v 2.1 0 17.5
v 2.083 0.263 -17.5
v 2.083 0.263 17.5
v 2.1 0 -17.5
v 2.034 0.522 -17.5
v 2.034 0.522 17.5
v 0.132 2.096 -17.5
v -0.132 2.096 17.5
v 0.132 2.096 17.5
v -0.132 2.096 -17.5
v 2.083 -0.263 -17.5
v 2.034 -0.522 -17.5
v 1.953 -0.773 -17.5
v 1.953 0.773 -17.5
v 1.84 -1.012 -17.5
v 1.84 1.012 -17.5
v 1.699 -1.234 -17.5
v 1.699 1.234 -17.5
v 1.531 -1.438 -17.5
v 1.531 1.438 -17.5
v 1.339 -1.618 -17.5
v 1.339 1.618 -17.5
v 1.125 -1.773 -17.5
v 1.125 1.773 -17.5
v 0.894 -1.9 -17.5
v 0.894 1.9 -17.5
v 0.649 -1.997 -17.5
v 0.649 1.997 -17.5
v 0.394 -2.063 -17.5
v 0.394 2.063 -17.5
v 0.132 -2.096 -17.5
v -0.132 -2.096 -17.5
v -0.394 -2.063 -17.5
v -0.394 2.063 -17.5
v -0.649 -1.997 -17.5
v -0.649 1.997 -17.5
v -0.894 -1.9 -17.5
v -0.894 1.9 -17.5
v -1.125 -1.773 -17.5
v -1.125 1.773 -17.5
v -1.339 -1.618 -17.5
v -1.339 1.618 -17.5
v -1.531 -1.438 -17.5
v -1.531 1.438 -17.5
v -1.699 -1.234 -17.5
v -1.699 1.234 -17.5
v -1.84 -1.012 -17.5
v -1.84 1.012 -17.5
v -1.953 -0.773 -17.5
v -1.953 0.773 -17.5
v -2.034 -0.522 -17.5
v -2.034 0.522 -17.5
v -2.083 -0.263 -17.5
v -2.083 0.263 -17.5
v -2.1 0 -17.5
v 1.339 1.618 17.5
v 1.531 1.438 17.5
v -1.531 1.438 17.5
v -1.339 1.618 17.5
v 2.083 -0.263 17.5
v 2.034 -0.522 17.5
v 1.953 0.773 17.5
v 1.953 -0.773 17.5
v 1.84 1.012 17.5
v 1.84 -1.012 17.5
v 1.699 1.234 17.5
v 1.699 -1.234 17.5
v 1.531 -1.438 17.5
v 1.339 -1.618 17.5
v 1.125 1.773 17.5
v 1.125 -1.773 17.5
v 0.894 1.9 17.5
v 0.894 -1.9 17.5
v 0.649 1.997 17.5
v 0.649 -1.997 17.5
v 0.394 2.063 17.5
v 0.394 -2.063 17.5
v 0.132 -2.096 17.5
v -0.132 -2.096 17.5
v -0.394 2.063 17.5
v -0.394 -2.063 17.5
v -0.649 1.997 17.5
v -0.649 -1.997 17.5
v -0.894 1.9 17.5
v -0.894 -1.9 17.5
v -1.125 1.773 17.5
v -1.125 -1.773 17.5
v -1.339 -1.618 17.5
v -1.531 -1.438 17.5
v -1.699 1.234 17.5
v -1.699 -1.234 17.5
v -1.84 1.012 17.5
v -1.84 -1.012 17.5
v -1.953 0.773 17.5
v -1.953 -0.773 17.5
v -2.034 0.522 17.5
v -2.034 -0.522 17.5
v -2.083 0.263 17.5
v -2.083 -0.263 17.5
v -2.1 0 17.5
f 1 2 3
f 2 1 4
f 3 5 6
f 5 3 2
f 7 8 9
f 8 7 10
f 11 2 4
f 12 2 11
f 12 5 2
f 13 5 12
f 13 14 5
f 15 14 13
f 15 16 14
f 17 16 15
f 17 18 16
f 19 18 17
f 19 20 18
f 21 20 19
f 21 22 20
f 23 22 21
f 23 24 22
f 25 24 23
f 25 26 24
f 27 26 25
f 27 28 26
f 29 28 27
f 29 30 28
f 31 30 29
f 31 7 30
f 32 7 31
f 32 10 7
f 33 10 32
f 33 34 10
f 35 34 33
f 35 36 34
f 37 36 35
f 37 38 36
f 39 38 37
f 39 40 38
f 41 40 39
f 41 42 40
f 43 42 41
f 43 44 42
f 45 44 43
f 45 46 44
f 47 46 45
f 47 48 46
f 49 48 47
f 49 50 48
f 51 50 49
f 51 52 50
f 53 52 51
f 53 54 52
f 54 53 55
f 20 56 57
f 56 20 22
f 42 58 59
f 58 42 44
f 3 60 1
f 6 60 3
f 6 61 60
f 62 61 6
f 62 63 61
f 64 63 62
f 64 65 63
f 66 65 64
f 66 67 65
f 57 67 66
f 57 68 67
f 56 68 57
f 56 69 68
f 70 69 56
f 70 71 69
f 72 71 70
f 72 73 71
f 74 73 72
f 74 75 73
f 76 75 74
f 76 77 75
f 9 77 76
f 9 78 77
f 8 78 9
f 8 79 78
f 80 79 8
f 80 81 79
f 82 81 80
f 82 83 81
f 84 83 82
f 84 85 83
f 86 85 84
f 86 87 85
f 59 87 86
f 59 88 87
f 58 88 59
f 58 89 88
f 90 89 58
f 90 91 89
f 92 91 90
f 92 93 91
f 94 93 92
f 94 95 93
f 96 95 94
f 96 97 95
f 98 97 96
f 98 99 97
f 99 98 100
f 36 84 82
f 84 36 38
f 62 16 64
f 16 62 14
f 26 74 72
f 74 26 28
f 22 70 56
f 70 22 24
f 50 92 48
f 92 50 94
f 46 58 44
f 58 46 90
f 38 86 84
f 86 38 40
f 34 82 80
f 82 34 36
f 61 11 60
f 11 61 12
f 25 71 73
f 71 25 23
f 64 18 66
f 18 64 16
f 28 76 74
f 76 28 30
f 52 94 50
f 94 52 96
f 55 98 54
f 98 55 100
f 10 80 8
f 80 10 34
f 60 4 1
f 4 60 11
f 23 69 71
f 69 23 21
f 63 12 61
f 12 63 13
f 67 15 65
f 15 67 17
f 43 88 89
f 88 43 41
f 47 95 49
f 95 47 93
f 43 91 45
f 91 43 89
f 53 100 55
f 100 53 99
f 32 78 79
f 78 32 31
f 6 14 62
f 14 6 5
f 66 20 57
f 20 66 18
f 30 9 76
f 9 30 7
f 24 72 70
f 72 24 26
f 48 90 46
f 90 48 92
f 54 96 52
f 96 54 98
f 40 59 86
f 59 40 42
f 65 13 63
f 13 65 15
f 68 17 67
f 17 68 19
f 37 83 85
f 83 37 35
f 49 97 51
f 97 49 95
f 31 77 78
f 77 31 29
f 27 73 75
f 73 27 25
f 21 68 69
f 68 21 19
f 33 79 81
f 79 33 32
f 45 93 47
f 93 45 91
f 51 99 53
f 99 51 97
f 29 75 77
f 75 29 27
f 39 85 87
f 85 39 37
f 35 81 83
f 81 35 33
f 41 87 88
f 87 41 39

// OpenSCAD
$fn = 50;


difference() {
	union() {
		translate(v = [0, 0, -17.5000000000]) {
			cylinder(h = 35, r = 2.1000000000);
		}
	}
	union() {
		translate(v = [0, 0, -100.0000000000]) {
			cylinder(h = 200, r = 0);
		}
	}
}
